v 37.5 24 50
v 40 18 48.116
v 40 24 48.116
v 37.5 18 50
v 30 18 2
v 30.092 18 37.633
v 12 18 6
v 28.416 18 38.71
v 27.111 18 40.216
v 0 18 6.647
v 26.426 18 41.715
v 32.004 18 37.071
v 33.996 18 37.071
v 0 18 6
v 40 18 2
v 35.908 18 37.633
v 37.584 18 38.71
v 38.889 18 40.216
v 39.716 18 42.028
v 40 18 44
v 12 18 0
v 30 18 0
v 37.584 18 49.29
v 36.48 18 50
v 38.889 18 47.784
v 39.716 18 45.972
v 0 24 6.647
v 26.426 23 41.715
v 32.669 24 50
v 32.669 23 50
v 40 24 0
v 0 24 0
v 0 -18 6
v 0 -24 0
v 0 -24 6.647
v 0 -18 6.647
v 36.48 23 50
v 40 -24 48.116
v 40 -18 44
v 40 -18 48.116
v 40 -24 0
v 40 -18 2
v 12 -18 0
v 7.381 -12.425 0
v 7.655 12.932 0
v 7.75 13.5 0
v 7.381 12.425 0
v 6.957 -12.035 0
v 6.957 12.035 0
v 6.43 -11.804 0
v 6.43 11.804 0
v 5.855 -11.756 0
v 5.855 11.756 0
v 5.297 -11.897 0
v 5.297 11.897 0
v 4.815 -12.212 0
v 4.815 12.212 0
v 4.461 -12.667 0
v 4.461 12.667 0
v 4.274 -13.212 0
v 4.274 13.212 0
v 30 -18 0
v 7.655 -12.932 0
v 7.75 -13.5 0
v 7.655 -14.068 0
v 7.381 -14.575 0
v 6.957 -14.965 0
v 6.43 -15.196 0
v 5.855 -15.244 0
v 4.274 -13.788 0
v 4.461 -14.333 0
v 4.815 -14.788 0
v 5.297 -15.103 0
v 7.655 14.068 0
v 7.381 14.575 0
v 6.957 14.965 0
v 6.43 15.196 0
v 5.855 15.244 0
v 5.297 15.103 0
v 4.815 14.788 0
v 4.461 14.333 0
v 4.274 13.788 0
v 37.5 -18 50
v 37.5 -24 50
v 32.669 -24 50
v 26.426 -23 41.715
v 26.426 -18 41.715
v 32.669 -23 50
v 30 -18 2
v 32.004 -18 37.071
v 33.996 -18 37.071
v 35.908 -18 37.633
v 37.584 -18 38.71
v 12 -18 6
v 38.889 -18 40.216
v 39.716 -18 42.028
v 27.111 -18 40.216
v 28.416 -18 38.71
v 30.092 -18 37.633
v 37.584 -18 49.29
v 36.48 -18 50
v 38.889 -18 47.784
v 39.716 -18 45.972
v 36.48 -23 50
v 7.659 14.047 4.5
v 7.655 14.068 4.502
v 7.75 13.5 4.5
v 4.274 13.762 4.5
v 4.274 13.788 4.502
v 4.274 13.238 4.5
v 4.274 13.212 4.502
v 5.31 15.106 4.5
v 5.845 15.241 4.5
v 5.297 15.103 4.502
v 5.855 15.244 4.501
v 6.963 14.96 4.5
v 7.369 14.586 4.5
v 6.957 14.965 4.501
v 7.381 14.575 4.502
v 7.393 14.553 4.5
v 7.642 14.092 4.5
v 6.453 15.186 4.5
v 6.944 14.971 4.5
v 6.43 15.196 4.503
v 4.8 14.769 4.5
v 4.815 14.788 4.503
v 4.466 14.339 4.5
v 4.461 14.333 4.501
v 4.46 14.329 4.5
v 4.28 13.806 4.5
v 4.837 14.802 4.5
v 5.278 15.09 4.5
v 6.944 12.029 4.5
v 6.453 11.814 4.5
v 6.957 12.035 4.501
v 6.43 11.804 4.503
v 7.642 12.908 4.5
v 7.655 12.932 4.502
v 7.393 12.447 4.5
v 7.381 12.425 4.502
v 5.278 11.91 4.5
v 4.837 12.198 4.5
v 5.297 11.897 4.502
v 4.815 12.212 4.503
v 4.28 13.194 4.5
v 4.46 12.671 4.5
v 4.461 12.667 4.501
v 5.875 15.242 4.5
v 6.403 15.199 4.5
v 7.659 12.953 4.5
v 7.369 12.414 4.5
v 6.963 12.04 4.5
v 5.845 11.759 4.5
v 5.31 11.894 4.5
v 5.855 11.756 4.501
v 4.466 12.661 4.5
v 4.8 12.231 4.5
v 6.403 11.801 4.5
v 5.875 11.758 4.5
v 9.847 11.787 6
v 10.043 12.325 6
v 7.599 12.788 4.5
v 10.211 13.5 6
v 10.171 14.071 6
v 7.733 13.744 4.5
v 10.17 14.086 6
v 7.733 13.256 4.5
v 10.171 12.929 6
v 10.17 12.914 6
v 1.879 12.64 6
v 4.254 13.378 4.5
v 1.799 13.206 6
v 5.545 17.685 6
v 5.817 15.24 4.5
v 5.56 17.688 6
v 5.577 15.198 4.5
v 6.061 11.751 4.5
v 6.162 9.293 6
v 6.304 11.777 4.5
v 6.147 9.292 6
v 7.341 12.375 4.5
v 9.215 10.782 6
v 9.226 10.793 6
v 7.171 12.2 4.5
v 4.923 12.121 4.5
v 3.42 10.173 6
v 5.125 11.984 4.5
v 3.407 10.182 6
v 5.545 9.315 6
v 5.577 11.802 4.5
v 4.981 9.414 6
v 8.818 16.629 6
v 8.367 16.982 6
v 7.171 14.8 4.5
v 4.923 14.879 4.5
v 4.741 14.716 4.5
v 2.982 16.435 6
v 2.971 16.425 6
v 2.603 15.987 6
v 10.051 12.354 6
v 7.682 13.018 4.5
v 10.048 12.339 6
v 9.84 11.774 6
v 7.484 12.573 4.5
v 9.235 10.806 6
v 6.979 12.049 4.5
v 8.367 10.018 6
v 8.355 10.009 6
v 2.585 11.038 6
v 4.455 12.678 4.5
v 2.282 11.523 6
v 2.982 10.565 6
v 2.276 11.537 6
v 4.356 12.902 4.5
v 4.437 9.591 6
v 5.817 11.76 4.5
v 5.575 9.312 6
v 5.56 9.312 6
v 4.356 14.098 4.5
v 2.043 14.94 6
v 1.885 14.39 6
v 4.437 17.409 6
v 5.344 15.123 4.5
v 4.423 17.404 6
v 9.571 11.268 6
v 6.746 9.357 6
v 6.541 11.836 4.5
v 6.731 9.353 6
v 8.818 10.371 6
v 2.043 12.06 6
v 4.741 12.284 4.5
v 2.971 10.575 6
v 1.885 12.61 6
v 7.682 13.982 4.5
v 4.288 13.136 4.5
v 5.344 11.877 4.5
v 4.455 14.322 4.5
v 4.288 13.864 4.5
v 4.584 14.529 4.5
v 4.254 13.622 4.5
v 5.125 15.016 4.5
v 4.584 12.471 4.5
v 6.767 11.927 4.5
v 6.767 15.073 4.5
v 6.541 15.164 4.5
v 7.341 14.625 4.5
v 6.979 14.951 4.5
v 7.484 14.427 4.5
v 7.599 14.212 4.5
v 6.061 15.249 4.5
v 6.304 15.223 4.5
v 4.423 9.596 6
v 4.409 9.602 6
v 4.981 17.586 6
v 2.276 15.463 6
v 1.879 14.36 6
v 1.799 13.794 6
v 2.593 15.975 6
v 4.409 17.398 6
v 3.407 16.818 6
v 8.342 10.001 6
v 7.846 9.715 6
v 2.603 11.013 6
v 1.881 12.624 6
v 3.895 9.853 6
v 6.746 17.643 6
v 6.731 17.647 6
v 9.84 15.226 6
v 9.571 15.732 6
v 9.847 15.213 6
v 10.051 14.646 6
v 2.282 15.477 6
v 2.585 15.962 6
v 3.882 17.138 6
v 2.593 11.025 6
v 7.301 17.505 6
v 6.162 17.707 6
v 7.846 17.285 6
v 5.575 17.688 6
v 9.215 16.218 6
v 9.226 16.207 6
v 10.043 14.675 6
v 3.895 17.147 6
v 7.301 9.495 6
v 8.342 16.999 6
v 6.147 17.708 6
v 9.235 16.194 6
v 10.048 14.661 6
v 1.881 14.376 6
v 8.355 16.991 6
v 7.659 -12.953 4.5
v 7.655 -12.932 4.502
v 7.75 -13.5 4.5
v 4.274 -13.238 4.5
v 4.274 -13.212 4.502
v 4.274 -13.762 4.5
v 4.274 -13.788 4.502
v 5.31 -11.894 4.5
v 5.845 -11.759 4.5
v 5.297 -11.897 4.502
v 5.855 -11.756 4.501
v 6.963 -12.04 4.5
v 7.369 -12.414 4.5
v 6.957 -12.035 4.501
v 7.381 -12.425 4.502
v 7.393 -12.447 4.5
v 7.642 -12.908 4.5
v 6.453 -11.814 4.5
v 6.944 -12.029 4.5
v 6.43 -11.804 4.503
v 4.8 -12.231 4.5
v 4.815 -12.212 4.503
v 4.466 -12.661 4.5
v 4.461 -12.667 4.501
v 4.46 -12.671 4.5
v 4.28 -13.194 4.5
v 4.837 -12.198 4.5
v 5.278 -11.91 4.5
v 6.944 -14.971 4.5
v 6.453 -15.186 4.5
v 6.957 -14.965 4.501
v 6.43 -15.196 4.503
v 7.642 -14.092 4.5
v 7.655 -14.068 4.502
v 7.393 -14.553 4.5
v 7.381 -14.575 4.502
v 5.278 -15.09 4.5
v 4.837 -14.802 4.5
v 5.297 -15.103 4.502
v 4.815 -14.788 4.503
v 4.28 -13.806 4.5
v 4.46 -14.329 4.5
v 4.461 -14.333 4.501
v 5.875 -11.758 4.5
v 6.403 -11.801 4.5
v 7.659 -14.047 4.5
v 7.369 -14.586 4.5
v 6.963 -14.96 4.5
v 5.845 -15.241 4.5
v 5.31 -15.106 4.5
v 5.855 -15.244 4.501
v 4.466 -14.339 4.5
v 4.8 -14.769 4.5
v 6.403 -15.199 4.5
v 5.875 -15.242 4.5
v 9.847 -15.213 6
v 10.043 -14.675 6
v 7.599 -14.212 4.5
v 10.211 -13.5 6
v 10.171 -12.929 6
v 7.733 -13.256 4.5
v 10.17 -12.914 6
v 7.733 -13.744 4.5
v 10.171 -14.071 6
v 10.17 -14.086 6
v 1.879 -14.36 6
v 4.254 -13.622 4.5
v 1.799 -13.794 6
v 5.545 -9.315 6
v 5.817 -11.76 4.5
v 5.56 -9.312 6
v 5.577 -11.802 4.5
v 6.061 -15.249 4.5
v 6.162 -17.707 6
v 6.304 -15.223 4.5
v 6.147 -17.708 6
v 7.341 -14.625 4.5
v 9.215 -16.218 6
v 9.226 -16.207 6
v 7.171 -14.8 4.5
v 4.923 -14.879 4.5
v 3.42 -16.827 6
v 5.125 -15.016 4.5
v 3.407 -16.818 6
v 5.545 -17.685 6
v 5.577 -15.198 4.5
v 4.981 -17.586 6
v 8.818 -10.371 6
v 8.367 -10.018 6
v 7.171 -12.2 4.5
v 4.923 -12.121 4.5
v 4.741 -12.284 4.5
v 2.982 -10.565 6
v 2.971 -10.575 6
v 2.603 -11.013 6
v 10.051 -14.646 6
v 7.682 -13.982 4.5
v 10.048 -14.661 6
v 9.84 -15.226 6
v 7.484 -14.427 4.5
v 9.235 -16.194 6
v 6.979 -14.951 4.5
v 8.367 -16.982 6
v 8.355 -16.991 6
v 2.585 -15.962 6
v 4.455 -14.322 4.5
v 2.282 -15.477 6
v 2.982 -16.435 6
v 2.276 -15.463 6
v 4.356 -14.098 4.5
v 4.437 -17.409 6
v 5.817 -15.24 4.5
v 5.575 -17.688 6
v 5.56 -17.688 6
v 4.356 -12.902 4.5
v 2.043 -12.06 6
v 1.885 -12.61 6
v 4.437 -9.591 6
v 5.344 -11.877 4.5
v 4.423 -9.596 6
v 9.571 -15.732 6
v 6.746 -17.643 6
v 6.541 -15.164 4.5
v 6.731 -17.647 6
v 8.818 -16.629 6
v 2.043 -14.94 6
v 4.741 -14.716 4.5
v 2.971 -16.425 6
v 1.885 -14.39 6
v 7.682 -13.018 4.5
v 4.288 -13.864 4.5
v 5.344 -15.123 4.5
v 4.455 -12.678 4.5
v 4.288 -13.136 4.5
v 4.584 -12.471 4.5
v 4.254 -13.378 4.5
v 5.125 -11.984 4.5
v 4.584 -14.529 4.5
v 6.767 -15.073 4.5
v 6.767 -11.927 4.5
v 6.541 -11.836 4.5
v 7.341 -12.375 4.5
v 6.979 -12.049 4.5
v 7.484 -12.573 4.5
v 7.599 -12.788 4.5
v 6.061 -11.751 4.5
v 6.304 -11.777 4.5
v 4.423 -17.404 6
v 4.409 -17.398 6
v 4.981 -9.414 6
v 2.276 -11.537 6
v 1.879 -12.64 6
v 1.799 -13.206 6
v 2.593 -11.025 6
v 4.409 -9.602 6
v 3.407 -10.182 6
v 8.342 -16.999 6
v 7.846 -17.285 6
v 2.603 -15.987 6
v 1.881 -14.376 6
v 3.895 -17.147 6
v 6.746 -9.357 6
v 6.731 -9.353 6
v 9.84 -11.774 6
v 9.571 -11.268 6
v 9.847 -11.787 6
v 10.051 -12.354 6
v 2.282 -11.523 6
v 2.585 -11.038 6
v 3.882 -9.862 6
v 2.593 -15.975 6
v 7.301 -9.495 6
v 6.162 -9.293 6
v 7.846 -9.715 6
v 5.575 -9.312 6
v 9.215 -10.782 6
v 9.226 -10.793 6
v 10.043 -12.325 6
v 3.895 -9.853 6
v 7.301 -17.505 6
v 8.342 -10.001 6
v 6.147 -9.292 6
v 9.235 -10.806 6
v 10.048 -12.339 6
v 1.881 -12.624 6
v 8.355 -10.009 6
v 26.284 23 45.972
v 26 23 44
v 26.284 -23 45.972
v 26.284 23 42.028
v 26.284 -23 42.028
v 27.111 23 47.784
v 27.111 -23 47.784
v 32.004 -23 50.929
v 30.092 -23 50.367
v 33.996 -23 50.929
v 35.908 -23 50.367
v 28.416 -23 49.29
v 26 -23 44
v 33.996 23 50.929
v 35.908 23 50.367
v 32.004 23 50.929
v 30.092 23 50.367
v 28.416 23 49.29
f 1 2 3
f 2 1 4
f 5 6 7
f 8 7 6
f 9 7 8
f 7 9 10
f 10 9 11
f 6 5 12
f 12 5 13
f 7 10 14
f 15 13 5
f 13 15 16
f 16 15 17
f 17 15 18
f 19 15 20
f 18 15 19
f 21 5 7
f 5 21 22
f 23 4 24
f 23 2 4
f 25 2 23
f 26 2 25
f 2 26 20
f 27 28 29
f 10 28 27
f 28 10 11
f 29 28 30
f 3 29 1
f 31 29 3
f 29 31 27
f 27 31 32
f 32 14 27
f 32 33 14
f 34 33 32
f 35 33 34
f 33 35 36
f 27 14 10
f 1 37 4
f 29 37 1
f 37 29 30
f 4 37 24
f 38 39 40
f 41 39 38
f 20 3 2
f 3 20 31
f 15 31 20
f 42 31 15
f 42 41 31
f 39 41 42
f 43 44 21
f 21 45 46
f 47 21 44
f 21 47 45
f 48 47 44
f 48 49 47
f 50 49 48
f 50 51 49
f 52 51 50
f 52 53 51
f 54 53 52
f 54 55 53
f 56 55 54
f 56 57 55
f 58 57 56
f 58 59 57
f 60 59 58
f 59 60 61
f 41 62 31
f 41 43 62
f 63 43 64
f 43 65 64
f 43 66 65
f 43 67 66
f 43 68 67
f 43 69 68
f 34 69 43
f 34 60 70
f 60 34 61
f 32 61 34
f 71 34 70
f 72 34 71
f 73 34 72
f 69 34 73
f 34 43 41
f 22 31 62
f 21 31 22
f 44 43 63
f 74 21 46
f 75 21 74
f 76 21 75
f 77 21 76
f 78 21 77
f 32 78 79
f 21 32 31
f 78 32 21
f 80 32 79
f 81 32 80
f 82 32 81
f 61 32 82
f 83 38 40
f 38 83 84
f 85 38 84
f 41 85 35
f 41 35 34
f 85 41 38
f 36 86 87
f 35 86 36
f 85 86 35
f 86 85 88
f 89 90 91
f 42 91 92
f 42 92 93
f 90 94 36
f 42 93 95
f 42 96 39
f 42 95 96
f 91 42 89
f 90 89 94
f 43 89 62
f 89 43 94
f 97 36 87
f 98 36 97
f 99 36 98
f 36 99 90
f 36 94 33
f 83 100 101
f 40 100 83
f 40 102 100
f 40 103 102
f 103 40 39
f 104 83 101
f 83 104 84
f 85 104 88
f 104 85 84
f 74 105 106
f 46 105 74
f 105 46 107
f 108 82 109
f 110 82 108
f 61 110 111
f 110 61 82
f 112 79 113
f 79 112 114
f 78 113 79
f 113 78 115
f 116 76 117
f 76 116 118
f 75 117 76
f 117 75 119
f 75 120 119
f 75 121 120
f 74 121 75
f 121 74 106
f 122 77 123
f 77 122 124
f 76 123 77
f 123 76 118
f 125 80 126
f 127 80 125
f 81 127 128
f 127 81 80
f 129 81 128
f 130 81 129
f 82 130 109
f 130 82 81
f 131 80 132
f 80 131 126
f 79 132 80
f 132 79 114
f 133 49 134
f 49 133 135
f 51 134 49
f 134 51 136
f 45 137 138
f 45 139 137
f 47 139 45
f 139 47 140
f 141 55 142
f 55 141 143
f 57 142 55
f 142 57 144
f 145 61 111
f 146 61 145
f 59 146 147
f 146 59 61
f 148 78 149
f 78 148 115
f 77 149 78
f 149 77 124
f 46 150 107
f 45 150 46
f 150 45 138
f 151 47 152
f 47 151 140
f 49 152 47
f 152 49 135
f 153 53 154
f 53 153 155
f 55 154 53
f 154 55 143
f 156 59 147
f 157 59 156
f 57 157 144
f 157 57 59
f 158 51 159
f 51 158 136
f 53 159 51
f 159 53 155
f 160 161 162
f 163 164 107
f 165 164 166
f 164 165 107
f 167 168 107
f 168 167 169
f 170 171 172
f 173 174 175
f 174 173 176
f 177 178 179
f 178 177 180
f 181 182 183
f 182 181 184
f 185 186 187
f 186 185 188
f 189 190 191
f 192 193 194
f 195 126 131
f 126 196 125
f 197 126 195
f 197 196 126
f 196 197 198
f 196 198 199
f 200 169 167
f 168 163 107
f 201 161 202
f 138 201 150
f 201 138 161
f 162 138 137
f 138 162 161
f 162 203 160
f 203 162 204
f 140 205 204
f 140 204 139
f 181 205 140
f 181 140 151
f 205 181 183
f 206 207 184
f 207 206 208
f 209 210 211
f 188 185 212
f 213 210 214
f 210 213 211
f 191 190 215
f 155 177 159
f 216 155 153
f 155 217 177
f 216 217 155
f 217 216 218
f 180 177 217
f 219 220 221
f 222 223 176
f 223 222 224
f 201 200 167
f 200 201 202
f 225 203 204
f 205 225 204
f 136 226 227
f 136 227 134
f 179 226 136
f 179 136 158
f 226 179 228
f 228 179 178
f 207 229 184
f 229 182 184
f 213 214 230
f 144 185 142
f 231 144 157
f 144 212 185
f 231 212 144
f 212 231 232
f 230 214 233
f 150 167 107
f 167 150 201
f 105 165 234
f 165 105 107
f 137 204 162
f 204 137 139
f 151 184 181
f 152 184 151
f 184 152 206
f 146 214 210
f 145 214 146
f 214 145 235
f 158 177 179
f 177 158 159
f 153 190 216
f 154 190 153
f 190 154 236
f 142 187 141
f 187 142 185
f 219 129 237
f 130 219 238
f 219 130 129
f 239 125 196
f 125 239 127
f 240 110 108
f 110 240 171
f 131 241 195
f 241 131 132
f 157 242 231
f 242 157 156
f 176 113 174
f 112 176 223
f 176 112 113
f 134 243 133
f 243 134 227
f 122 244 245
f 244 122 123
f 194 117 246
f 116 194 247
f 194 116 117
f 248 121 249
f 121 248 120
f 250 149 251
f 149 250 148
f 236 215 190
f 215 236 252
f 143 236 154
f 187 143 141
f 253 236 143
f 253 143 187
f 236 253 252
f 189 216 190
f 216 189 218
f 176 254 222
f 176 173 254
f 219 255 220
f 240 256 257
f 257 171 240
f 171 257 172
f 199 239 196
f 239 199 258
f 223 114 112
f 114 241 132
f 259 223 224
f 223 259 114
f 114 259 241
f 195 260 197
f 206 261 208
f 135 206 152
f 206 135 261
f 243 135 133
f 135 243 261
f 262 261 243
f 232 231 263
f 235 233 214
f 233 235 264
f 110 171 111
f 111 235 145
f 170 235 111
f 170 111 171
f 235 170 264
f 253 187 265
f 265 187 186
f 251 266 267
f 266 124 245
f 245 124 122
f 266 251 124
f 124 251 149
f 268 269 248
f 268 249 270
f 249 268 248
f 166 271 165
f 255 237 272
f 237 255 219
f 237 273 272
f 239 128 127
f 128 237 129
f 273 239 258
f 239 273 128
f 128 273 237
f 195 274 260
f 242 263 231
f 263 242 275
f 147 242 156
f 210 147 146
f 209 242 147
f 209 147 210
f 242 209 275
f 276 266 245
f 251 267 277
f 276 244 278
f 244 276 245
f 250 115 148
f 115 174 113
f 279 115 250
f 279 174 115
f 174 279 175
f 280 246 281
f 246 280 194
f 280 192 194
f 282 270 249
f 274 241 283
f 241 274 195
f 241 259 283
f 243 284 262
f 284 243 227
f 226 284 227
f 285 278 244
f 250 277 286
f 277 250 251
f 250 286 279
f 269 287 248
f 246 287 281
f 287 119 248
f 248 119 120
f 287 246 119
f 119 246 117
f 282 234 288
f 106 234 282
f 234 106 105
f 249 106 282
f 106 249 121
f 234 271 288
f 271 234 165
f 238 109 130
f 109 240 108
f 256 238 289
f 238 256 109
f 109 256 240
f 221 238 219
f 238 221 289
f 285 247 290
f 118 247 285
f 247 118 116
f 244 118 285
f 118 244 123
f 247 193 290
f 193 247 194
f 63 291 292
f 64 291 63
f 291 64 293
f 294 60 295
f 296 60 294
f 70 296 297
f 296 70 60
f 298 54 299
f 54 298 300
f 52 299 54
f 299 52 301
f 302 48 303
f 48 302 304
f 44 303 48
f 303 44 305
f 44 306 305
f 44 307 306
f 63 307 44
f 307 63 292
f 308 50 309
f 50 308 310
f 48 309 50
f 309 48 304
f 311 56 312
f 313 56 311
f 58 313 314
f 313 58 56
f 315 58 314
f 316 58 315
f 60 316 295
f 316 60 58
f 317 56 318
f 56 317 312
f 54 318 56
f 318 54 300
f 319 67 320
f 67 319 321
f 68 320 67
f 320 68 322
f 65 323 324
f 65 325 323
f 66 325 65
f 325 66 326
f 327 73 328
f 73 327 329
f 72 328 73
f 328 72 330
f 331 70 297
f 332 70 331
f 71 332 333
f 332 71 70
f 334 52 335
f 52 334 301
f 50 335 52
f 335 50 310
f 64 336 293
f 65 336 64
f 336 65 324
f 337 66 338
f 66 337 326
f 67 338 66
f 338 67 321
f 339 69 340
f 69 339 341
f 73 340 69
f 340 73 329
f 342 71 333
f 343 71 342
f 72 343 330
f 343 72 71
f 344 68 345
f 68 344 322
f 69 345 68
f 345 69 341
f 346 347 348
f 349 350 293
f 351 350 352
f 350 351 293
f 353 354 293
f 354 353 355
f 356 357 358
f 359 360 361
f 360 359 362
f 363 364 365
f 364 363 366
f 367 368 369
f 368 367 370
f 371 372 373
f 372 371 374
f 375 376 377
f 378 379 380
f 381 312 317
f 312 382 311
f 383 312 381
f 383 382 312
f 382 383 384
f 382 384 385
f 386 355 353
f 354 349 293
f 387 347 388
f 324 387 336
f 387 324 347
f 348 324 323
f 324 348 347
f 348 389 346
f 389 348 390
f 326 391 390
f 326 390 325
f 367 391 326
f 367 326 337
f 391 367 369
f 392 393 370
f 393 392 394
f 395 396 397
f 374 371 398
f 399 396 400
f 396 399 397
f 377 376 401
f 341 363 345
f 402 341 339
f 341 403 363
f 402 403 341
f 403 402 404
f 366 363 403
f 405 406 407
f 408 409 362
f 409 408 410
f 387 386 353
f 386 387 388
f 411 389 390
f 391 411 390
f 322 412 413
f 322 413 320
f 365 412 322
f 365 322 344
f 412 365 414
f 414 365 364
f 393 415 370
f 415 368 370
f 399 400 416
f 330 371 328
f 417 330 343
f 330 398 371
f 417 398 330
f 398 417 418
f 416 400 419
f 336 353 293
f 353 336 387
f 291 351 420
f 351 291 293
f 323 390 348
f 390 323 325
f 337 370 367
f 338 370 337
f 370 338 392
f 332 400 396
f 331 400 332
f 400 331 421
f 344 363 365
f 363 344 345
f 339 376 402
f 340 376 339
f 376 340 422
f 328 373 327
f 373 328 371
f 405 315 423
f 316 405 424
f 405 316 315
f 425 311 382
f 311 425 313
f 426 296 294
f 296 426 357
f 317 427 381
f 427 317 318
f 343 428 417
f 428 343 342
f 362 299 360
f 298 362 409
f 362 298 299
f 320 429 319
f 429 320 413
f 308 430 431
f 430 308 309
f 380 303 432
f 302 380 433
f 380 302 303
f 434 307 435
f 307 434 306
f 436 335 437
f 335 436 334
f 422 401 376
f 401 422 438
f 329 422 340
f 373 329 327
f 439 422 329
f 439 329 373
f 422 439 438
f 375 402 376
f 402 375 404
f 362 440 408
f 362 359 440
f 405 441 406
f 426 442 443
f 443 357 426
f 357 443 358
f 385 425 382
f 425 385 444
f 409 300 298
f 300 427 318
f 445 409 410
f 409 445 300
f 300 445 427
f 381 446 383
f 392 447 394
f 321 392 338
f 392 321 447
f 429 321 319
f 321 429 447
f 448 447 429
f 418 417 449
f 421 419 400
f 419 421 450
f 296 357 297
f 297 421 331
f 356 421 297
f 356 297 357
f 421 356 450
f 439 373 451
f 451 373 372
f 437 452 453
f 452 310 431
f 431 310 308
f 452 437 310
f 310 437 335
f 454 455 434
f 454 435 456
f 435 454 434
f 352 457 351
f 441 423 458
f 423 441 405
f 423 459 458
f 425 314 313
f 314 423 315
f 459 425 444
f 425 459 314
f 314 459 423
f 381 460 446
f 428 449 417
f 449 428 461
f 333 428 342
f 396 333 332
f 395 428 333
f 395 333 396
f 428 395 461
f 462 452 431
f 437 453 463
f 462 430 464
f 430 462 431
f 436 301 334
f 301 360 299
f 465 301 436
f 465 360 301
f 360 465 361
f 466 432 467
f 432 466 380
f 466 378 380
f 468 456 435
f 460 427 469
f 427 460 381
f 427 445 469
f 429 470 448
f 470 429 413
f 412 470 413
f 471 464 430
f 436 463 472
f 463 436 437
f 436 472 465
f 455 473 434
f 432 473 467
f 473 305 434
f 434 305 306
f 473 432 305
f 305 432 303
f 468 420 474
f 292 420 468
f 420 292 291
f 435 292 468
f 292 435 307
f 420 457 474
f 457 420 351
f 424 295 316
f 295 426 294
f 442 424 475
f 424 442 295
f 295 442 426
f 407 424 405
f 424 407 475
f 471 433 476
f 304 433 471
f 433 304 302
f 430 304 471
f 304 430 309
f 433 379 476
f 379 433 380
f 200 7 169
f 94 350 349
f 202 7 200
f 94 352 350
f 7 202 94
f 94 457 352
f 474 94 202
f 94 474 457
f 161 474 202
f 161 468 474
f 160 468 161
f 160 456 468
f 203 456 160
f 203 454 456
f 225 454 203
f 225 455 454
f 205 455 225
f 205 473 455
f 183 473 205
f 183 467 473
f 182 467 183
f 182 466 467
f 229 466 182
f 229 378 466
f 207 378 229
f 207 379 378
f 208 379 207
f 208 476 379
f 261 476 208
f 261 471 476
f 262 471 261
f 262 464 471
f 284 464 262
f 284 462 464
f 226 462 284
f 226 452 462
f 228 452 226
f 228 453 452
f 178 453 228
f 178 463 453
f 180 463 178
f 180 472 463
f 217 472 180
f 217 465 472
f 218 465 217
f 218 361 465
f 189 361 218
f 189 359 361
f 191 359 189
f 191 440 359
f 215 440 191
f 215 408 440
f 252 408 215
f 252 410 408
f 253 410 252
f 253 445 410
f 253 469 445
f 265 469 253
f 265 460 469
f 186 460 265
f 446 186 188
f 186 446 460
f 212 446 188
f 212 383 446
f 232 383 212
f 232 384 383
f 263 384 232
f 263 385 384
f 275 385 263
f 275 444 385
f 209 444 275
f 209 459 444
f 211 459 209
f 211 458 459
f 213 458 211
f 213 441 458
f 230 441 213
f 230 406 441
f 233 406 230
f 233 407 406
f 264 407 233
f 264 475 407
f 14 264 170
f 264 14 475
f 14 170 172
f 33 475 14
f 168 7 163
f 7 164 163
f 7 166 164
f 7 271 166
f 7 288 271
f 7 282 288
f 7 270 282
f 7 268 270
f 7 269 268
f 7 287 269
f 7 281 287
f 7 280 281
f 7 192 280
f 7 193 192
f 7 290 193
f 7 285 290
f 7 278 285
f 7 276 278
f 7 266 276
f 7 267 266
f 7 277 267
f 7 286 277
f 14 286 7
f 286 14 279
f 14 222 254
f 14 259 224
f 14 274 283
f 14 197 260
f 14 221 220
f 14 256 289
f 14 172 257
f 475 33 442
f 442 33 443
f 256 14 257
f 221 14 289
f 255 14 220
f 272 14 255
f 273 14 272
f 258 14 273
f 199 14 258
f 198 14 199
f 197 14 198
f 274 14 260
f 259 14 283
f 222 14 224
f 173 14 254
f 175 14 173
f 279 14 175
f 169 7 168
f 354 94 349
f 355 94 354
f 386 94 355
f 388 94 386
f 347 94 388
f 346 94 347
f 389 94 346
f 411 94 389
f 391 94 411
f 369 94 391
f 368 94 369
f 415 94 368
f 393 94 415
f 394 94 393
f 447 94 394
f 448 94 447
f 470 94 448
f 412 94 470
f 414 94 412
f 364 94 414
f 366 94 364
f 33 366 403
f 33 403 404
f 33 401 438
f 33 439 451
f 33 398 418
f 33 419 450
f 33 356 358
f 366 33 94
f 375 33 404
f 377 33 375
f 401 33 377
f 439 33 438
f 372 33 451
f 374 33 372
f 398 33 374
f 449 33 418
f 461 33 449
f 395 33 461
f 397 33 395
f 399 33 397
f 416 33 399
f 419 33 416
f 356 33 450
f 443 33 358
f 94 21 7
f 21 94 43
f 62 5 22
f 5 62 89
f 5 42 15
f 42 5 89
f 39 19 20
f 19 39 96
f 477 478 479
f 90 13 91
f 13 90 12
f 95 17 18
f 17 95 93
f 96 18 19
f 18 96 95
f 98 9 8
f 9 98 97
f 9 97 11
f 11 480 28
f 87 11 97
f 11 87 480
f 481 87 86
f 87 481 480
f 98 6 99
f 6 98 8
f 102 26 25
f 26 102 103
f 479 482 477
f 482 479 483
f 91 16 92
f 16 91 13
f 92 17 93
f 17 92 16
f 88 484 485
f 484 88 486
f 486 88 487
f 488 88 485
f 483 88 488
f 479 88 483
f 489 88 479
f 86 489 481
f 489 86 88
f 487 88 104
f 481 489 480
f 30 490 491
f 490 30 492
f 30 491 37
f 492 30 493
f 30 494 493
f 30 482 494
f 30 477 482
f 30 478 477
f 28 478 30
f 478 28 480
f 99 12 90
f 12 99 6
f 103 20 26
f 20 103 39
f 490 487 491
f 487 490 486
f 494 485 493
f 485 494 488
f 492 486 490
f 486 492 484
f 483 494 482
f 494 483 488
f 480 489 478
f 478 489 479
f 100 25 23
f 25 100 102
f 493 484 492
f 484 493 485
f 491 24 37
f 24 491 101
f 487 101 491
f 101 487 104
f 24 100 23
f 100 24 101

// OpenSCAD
// A hanger for a shoe horn
// This design requires a supporting material.

module side(thickness) {
    intersection () {
        rotate(37, [0,1,0]) translate([-4,0,0]) {
            cube([100, thickness, 62.5]);
        }
        cube([40, thickness, 50]);
    }
}

translate ([0, 24-6, 0]) {
    side(6);
}
translate ([0, -24, 0]) {
    side(6);
}

// base cross-bar with hanging holes
module hole(dia) {
    $fa = 8; // for some reason this does not work
    $fs = 0.6;
    union () {
        cylinder(6.2, dia/2, dia/2);
        translate ([0,0, 4.6]) {
            cylinder(1.6, dia/2, (dia*2.5)/2);
        }
    }
}
difference () {
    translate ([0,-23,0]) cube([12, 46, 6]);
    translate ([6, 13.5,-0.1]) hole(3.5);
    translate ([6, -13.5,-0.1]) hole(3.5);
}
translate ([30,-23,0]) cube([10, 46, 2]);

// hanging bar
translate ([33, -23, 44]) {
    rotate (-90, [1,0,0]) cylinder(46, 7, 7);
}
